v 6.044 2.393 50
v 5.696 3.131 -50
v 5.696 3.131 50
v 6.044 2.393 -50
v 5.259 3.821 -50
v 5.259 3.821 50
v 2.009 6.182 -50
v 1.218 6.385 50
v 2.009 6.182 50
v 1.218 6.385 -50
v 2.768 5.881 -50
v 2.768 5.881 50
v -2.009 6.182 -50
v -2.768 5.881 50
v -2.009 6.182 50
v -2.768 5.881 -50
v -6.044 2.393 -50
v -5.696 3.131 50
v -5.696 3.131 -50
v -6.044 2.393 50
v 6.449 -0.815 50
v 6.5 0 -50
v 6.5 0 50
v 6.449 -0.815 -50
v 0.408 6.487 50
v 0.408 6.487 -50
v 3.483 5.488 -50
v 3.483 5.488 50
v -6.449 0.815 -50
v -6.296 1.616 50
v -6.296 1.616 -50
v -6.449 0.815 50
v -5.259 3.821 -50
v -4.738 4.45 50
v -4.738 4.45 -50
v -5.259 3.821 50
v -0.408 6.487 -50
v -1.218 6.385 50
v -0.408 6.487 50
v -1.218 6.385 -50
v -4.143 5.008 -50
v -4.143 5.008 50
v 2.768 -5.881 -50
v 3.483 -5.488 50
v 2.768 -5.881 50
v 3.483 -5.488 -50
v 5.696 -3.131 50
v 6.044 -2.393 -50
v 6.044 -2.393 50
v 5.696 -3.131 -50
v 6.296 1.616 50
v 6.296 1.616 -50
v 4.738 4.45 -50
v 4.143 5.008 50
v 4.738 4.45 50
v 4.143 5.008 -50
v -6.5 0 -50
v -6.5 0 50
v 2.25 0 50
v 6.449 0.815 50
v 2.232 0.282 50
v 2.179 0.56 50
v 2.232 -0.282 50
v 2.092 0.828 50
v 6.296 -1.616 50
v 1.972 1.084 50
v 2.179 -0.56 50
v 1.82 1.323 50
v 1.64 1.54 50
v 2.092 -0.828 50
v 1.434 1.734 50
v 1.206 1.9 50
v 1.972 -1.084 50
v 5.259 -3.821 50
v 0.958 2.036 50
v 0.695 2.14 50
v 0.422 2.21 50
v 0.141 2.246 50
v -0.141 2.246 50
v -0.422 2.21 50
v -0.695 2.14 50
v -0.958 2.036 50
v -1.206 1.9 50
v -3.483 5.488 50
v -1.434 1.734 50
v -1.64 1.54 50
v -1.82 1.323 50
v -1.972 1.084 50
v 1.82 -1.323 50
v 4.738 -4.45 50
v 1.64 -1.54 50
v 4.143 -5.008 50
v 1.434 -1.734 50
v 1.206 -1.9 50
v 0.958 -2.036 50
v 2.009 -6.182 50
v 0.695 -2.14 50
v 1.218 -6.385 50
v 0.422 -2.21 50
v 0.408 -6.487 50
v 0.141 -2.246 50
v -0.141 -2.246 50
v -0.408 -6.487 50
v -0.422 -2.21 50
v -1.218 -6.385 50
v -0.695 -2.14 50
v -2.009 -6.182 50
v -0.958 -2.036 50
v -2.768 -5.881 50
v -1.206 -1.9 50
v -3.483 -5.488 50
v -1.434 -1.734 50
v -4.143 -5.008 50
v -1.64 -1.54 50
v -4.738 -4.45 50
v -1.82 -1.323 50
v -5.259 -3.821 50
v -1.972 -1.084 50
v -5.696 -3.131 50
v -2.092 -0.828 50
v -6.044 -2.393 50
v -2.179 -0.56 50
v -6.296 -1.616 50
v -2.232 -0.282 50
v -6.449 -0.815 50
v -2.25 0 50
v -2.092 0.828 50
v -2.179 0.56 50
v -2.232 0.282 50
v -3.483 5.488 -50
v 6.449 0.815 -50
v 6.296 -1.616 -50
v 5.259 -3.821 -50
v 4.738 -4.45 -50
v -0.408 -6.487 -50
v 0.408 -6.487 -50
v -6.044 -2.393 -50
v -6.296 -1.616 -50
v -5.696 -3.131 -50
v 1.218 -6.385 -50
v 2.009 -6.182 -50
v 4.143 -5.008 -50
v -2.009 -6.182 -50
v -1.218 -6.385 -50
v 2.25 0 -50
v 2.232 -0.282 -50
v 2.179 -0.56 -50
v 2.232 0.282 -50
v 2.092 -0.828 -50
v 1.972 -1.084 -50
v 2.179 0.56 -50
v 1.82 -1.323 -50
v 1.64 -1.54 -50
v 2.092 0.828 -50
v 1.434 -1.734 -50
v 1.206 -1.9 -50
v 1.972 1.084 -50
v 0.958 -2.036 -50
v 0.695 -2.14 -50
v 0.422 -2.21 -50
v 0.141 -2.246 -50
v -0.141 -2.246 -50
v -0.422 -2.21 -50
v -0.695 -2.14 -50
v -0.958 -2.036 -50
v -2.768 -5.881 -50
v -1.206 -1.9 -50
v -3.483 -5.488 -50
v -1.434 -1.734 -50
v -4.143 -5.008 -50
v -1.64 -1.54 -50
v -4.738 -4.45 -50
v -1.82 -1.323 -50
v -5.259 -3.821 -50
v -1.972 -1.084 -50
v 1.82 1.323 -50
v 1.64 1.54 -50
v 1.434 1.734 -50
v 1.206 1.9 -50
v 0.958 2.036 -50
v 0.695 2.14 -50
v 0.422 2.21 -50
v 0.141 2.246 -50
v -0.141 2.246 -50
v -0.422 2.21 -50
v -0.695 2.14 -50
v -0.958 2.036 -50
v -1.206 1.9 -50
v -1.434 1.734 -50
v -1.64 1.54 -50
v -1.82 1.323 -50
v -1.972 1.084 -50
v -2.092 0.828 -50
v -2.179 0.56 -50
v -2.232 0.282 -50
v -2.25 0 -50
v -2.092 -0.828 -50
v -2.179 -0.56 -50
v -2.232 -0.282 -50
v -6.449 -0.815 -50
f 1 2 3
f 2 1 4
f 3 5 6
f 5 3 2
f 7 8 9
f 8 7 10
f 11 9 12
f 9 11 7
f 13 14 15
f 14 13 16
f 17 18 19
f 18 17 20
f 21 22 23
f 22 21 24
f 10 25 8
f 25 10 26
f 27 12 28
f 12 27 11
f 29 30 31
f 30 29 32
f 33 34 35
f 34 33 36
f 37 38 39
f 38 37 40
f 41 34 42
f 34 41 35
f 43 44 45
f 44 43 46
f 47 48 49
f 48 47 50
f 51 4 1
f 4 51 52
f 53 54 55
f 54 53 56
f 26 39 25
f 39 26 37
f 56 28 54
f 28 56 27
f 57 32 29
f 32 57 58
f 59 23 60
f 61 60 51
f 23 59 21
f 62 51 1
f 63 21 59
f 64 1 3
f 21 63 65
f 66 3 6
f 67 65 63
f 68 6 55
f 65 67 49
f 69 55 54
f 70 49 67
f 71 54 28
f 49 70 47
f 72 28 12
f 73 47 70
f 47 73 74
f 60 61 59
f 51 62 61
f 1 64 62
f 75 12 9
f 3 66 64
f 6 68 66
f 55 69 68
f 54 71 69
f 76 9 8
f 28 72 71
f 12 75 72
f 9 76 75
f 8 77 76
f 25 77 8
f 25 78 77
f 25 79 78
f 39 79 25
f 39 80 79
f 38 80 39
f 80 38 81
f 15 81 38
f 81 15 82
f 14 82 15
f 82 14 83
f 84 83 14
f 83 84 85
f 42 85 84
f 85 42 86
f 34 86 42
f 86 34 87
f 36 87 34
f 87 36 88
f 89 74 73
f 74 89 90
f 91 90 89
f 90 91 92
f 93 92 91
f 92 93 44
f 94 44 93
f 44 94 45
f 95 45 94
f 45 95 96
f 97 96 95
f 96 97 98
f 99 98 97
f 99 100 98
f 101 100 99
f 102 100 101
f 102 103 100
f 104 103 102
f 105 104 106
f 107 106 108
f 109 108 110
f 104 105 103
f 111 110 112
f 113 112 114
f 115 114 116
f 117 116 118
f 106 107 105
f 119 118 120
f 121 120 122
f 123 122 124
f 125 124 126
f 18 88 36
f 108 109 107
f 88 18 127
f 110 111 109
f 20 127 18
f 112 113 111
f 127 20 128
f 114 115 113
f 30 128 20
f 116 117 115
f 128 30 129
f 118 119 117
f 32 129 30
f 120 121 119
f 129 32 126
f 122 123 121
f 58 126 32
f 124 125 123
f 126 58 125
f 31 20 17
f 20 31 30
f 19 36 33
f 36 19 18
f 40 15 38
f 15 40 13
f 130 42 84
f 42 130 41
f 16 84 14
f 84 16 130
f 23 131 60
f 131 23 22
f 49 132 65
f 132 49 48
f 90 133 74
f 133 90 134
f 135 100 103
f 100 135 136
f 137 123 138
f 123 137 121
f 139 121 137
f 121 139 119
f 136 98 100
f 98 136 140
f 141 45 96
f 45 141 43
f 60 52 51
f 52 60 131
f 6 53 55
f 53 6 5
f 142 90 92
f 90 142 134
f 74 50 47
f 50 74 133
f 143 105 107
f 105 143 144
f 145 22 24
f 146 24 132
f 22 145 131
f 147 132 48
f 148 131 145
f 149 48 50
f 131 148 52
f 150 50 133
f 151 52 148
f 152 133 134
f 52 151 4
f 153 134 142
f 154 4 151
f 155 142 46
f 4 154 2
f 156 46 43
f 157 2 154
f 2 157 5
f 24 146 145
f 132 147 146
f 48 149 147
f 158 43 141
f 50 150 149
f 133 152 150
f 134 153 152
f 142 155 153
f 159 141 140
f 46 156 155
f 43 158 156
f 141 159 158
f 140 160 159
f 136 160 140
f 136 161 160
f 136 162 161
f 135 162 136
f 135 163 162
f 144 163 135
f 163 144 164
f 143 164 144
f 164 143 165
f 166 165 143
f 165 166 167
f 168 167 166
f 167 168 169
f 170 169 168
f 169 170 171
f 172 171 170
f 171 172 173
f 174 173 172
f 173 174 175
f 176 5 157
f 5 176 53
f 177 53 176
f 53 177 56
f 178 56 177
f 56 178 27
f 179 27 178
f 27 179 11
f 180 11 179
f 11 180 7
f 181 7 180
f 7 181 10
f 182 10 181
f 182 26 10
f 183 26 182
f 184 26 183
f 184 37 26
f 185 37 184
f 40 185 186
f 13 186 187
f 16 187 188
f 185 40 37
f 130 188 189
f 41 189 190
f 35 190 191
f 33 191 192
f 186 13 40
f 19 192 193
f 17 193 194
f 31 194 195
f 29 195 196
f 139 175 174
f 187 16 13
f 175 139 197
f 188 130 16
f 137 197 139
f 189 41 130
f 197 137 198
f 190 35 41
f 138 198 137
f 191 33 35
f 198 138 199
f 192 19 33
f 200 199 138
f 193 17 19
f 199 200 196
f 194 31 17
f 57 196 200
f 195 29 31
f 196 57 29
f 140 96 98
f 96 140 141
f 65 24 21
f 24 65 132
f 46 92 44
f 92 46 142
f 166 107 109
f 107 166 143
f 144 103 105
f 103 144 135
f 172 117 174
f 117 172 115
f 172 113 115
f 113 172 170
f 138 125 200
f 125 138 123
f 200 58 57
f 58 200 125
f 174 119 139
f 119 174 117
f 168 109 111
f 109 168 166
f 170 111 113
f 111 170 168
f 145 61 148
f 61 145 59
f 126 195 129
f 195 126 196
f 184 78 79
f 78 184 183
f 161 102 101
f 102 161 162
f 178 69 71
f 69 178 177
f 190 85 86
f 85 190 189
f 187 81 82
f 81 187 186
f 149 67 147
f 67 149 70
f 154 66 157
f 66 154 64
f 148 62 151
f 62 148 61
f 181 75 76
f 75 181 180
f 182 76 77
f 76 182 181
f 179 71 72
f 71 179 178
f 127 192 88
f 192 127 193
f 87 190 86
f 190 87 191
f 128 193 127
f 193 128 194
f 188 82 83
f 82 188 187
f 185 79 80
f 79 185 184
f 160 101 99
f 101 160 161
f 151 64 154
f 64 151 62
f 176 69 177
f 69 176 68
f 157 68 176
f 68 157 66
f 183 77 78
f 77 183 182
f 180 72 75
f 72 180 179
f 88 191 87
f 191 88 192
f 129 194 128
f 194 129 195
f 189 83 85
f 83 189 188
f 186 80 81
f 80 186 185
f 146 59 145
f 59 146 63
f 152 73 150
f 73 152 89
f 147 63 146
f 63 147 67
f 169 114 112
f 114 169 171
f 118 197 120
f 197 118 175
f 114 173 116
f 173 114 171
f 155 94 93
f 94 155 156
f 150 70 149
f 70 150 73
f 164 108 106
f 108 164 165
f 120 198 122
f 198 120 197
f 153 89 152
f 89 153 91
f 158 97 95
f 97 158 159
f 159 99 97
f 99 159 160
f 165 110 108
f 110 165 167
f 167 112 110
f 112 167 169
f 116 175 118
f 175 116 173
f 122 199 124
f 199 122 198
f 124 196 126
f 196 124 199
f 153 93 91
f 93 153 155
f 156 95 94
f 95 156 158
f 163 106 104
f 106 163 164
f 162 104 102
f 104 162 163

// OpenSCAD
$fn = 50;


difference() {
	union() {
		translate(v = [0, 0, -50.0000000000]) {
			cylinder(h = 100, r = 6.5000000000);
		}
	}
	union() {
		translate(v = [0, 0, -100.0000000000]) {
			cylinder(h = 200, r = 2.2500000000);
		}
	}
}
